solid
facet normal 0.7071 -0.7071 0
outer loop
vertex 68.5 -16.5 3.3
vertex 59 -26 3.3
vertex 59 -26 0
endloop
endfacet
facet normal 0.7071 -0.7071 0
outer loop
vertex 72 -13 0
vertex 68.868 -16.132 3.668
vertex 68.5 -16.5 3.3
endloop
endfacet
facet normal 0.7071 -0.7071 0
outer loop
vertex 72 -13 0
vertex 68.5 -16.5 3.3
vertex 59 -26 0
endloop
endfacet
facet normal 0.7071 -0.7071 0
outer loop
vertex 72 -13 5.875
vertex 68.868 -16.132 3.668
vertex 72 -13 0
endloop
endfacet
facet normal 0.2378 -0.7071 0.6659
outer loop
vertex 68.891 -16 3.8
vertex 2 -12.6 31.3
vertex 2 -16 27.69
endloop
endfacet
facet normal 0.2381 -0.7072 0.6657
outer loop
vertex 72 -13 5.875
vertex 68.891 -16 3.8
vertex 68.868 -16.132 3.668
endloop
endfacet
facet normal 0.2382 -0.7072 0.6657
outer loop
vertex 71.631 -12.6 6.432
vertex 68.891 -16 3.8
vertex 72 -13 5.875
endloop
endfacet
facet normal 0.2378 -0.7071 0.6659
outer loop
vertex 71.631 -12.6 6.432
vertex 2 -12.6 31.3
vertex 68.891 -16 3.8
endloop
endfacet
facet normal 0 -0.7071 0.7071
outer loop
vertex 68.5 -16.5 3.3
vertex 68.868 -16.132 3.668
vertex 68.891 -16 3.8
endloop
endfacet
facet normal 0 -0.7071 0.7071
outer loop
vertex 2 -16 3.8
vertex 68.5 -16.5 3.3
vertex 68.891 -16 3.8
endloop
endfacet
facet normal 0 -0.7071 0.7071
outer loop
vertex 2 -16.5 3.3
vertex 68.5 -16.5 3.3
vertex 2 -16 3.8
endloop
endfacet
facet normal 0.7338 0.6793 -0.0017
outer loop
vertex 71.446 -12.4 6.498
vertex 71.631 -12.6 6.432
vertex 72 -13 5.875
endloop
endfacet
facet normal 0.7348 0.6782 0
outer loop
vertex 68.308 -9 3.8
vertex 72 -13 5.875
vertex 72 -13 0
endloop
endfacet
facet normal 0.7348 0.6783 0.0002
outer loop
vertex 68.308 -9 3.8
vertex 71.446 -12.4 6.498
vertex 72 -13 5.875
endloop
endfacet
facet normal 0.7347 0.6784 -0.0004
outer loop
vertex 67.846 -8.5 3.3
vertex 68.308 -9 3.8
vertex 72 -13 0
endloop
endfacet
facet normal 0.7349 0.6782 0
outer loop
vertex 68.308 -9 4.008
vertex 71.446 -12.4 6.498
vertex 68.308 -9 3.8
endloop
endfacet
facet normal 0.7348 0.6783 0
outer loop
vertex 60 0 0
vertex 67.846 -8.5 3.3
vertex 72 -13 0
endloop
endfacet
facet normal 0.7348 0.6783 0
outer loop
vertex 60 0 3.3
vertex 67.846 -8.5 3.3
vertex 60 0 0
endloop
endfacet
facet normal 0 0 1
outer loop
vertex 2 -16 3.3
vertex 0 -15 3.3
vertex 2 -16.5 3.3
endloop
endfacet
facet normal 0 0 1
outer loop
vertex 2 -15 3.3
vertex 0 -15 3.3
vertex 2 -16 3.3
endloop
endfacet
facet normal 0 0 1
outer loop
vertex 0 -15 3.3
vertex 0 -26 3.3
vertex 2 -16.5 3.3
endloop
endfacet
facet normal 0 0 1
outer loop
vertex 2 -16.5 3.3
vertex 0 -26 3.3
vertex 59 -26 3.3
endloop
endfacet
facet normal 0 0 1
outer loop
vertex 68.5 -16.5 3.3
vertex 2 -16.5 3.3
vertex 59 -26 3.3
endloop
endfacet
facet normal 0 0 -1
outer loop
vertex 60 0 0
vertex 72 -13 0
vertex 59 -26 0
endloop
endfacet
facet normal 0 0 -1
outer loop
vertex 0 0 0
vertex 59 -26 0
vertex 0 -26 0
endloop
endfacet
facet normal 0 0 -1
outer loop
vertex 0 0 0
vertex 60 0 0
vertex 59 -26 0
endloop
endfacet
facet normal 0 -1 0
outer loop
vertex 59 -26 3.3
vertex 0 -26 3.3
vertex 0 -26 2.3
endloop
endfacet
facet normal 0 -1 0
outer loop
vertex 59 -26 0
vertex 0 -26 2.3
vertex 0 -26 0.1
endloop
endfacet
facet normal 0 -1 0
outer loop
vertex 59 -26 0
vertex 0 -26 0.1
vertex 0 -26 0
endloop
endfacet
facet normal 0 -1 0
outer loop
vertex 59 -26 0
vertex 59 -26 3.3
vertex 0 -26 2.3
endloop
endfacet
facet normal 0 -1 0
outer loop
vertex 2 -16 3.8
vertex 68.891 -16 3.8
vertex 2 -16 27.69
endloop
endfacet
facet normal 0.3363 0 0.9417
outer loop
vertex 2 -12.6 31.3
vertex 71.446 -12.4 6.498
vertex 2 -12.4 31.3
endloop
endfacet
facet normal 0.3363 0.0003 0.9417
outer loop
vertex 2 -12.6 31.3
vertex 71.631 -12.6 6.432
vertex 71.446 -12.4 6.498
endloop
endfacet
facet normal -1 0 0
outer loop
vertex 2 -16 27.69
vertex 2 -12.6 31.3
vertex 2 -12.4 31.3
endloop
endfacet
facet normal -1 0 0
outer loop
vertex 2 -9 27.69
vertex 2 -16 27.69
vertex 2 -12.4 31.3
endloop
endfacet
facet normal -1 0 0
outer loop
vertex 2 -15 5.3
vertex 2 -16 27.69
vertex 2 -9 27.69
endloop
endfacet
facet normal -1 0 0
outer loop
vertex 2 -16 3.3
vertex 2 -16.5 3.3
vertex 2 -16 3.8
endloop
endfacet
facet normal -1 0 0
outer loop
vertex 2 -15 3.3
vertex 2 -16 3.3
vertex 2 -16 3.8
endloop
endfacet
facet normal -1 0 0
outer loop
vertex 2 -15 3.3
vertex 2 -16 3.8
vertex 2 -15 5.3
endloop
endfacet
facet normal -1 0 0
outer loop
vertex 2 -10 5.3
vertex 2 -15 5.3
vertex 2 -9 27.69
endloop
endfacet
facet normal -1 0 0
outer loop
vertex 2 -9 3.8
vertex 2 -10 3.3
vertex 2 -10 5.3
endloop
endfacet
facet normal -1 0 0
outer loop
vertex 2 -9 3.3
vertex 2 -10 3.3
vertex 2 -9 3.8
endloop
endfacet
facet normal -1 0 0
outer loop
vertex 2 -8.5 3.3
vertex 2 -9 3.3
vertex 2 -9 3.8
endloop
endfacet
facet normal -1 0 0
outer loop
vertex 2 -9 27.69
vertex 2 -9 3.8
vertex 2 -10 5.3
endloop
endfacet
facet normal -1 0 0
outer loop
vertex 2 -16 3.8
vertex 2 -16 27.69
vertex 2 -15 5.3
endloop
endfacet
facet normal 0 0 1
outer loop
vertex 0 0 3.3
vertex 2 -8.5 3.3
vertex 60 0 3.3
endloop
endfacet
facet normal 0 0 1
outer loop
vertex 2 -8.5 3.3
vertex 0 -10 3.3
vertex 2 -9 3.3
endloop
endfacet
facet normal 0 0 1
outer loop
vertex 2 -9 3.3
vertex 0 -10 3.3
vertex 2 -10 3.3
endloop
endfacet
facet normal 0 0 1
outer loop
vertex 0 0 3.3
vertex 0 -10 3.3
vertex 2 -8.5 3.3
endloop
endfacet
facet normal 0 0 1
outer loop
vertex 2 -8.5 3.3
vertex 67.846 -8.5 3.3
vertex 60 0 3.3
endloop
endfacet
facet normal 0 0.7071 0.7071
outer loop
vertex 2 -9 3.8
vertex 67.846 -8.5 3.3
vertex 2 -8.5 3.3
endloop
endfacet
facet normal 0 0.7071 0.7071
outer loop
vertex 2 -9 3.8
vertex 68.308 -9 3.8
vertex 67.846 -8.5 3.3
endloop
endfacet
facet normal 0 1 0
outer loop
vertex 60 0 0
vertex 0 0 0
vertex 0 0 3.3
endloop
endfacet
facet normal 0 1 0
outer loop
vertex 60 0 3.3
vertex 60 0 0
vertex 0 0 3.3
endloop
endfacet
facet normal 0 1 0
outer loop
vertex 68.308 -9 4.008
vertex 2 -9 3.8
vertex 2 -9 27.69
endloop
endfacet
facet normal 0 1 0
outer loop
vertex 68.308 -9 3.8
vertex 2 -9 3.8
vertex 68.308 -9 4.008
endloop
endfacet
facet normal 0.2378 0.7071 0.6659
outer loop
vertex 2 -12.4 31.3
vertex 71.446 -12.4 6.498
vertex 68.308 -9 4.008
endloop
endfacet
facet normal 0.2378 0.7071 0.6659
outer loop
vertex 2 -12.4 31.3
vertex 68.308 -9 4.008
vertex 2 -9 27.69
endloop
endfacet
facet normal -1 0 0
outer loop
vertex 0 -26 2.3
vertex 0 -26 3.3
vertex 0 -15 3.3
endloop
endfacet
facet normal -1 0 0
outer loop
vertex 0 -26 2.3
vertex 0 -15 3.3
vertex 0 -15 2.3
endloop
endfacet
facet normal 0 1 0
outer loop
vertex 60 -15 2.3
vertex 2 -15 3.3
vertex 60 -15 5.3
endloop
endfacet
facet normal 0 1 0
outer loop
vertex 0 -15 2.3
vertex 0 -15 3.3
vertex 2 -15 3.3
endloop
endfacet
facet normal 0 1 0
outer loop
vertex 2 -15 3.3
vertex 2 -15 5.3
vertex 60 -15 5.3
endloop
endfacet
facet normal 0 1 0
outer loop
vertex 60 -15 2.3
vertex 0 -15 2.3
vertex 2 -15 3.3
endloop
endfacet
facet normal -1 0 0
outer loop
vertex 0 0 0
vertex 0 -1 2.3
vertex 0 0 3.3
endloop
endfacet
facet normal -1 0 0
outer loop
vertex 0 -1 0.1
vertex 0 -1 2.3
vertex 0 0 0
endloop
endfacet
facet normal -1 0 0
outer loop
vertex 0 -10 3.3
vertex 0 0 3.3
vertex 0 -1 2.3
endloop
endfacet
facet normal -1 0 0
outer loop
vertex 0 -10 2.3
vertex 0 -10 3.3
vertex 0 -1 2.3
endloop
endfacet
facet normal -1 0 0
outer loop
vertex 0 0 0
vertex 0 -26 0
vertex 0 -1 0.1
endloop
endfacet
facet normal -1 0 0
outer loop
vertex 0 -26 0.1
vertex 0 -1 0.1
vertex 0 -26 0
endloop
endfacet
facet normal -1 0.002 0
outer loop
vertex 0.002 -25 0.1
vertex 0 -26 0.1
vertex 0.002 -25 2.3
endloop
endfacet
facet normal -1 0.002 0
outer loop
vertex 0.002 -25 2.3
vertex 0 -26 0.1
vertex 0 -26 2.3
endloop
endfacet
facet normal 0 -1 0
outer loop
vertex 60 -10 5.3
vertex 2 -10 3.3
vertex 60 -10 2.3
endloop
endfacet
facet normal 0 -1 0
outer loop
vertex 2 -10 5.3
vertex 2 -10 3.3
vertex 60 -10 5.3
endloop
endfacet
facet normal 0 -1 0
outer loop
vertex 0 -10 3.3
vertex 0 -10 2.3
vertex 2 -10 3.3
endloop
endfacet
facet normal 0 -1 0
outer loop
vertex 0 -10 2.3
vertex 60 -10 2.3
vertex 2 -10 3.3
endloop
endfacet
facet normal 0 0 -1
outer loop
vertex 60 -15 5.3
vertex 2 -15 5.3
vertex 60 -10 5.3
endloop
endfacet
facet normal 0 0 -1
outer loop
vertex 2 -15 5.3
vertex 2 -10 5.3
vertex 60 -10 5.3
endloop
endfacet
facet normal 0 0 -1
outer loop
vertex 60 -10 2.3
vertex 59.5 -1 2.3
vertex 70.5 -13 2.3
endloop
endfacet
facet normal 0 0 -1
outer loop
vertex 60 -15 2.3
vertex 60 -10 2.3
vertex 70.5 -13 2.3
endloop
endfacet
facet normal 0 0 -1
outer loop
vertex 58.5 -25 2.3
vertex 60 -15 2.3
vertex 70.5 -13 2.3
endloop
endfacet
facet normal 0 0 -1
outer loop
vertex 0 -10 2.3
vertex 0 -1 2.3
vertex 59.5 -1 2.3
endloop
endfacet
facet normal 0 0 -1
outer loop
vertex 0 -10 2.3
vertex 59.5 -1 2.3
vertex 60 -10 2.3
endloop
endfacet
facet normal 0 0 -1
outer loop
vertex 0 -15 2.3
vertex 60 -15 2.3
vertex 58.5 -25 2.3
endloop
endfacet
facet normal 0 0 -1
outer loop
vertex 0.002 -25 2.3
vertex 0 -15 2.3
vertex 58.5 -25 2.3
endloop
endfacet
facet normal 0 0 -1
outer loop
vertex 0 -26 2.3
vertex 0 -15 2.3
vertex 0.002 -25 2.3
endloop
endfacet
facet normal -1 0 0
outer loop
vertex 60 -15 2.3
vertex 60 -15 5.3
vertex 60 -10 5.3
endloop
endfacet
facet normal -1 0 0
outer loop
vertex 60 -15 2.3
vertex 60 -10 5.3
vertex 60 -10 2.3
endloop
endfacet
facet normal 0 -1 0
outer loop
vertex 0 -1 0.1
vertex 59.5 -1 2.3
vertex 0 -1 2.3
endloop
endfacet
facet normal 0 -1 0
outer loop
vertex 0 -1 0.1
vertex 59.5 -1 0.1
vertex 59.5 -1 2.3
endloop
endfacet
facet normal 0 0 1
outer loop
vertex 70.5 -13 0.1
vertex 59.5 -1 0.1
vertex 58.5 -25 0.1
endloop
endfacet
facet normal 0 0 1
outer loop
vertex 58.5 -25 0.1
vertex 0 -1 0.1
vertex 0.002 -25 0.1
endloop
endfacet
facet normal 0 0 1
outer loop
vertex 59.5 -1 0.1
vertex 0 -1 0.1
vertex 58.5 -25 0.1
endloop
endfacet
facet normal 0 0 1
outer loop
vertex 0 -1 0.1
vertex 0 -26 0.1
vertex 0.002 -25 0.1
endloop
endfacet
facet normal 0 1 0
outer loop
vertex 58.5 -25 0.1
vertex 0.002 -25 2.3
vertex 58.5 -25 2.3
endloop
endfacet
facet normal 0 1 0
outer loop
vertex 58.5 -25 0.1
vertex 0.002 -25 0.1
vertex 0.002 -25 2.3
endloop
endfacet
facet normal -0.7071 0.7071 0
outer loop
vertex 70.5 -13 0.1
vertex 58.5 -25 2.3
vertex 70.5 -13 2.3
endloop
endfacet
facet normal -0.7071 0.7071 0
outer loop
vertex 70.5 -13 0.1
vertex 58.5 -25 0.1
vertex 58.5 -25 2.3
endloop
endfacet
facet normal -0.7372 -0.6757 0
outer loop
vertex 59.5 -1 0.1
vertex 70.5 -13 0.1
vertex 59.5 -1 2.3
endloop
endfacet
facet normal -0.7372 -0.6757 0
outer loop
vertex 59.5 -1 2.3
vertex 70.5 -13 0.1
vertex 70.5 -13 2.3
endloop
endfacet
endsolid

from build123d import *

# Parameters (mm, degrees)
PAD_DEPTH       = 0.1
PAD001_DEPTH    = 2.2
PAD002_DEPTH    = 1
PAD003_DEPTH    = 28
POCKET_DEPTH    = 8
SKETCH005_W     = 5
SKETCH005_H     = 3
POCKET001_DEPTH = 60
CHAMFER_SIZE    = 3.4
CHAMFER001_SIZE = 0.5


with BuildPart() as part:
    # Sketch → Pad (new body)
    with BuildSketch(Plane.XY):
        Polygon((0, 0), (60, 0), (72, -13), (59, -26), (0, -26), align=None)
    extrude(amount=PAD_DEPTH)

    # Sketch001 (on Face7 of Pad) → Pad001 (join)
    with BuildSketch(Plane.XY.offset(0.1)):
        Polygon((0, -1), (59.5, -1), (70.5, -13), (58.5, -25), (0.001879, -25), (0, -26), (59, -26), (72, -13), (60, 0), (0, 0), align=None)
    extrude(amount=PAD001_DEPTH)

    # Sketch002 (on Face3 of Pad001) → Pad002 (join)
    with BuildSketch(Plane.XY.offset(2.3)):
        Polygon((0, 0), (60, 0), (72, -13), (59, -26), (0, -26), align=None)
    extrude(amount=PAD002_DEPTH)

    # Sketch003 (on Face9 of Pad002) → Pad003 (join)
    with BuildSketch(Plane.XY.offset(3.3)):
        Polygon((2, -9), (68.307692, -9), (72, -13), (69, -16), (2, -16), align=None)
    extrude(amount=PAD003_DEPTH)

    # Sketch004 (on Face13 of Pad003) → Pocket (cut)
    with BuildSketch(Plane.XZ.offset(16)):
        Polygon((2, 31.3), (72, 6.3), (72, 31.3), align=None)
    extrude(amount=-POCKET_DEPTH, mode=Mode.SUBTRACT)

    # Sketch005 (on Face7 of Pocket) → Pocket001 (cut)
    with BuildSketch(Plane(origin=(0, 0, 0), x_dir=(0, -1, 0), z_dir=(-1, 0, 0))):
        with Locations((12.5, 3.8)):
            Rectangle(SKETCH005_W, SKETCH005_H)
    extrude(amount=-POCKET001_DEPTH, mode=Mode.SUBTRACT)

    # Chamfer
    chamfer_edges = [part.edges().sort_by_distance(p)[0] for p in [
        (35.153846, -9, 19.459341),
        (35.5, -16, 19.335714),
    ]]
    chamfer(chamfer_edges, length=CHAMFER_SIZE)

    # Chamfer001
    chamfer001_edges = [part.edges().sort_by_distance(p)[0] for p in [
        (35.5, -16, 3.3),
        (35.153846, -9, 3.3),
    ]]
    chamfer(chamfer001_edges, length=CHAMFER001_SIZE)


solid = part.part
